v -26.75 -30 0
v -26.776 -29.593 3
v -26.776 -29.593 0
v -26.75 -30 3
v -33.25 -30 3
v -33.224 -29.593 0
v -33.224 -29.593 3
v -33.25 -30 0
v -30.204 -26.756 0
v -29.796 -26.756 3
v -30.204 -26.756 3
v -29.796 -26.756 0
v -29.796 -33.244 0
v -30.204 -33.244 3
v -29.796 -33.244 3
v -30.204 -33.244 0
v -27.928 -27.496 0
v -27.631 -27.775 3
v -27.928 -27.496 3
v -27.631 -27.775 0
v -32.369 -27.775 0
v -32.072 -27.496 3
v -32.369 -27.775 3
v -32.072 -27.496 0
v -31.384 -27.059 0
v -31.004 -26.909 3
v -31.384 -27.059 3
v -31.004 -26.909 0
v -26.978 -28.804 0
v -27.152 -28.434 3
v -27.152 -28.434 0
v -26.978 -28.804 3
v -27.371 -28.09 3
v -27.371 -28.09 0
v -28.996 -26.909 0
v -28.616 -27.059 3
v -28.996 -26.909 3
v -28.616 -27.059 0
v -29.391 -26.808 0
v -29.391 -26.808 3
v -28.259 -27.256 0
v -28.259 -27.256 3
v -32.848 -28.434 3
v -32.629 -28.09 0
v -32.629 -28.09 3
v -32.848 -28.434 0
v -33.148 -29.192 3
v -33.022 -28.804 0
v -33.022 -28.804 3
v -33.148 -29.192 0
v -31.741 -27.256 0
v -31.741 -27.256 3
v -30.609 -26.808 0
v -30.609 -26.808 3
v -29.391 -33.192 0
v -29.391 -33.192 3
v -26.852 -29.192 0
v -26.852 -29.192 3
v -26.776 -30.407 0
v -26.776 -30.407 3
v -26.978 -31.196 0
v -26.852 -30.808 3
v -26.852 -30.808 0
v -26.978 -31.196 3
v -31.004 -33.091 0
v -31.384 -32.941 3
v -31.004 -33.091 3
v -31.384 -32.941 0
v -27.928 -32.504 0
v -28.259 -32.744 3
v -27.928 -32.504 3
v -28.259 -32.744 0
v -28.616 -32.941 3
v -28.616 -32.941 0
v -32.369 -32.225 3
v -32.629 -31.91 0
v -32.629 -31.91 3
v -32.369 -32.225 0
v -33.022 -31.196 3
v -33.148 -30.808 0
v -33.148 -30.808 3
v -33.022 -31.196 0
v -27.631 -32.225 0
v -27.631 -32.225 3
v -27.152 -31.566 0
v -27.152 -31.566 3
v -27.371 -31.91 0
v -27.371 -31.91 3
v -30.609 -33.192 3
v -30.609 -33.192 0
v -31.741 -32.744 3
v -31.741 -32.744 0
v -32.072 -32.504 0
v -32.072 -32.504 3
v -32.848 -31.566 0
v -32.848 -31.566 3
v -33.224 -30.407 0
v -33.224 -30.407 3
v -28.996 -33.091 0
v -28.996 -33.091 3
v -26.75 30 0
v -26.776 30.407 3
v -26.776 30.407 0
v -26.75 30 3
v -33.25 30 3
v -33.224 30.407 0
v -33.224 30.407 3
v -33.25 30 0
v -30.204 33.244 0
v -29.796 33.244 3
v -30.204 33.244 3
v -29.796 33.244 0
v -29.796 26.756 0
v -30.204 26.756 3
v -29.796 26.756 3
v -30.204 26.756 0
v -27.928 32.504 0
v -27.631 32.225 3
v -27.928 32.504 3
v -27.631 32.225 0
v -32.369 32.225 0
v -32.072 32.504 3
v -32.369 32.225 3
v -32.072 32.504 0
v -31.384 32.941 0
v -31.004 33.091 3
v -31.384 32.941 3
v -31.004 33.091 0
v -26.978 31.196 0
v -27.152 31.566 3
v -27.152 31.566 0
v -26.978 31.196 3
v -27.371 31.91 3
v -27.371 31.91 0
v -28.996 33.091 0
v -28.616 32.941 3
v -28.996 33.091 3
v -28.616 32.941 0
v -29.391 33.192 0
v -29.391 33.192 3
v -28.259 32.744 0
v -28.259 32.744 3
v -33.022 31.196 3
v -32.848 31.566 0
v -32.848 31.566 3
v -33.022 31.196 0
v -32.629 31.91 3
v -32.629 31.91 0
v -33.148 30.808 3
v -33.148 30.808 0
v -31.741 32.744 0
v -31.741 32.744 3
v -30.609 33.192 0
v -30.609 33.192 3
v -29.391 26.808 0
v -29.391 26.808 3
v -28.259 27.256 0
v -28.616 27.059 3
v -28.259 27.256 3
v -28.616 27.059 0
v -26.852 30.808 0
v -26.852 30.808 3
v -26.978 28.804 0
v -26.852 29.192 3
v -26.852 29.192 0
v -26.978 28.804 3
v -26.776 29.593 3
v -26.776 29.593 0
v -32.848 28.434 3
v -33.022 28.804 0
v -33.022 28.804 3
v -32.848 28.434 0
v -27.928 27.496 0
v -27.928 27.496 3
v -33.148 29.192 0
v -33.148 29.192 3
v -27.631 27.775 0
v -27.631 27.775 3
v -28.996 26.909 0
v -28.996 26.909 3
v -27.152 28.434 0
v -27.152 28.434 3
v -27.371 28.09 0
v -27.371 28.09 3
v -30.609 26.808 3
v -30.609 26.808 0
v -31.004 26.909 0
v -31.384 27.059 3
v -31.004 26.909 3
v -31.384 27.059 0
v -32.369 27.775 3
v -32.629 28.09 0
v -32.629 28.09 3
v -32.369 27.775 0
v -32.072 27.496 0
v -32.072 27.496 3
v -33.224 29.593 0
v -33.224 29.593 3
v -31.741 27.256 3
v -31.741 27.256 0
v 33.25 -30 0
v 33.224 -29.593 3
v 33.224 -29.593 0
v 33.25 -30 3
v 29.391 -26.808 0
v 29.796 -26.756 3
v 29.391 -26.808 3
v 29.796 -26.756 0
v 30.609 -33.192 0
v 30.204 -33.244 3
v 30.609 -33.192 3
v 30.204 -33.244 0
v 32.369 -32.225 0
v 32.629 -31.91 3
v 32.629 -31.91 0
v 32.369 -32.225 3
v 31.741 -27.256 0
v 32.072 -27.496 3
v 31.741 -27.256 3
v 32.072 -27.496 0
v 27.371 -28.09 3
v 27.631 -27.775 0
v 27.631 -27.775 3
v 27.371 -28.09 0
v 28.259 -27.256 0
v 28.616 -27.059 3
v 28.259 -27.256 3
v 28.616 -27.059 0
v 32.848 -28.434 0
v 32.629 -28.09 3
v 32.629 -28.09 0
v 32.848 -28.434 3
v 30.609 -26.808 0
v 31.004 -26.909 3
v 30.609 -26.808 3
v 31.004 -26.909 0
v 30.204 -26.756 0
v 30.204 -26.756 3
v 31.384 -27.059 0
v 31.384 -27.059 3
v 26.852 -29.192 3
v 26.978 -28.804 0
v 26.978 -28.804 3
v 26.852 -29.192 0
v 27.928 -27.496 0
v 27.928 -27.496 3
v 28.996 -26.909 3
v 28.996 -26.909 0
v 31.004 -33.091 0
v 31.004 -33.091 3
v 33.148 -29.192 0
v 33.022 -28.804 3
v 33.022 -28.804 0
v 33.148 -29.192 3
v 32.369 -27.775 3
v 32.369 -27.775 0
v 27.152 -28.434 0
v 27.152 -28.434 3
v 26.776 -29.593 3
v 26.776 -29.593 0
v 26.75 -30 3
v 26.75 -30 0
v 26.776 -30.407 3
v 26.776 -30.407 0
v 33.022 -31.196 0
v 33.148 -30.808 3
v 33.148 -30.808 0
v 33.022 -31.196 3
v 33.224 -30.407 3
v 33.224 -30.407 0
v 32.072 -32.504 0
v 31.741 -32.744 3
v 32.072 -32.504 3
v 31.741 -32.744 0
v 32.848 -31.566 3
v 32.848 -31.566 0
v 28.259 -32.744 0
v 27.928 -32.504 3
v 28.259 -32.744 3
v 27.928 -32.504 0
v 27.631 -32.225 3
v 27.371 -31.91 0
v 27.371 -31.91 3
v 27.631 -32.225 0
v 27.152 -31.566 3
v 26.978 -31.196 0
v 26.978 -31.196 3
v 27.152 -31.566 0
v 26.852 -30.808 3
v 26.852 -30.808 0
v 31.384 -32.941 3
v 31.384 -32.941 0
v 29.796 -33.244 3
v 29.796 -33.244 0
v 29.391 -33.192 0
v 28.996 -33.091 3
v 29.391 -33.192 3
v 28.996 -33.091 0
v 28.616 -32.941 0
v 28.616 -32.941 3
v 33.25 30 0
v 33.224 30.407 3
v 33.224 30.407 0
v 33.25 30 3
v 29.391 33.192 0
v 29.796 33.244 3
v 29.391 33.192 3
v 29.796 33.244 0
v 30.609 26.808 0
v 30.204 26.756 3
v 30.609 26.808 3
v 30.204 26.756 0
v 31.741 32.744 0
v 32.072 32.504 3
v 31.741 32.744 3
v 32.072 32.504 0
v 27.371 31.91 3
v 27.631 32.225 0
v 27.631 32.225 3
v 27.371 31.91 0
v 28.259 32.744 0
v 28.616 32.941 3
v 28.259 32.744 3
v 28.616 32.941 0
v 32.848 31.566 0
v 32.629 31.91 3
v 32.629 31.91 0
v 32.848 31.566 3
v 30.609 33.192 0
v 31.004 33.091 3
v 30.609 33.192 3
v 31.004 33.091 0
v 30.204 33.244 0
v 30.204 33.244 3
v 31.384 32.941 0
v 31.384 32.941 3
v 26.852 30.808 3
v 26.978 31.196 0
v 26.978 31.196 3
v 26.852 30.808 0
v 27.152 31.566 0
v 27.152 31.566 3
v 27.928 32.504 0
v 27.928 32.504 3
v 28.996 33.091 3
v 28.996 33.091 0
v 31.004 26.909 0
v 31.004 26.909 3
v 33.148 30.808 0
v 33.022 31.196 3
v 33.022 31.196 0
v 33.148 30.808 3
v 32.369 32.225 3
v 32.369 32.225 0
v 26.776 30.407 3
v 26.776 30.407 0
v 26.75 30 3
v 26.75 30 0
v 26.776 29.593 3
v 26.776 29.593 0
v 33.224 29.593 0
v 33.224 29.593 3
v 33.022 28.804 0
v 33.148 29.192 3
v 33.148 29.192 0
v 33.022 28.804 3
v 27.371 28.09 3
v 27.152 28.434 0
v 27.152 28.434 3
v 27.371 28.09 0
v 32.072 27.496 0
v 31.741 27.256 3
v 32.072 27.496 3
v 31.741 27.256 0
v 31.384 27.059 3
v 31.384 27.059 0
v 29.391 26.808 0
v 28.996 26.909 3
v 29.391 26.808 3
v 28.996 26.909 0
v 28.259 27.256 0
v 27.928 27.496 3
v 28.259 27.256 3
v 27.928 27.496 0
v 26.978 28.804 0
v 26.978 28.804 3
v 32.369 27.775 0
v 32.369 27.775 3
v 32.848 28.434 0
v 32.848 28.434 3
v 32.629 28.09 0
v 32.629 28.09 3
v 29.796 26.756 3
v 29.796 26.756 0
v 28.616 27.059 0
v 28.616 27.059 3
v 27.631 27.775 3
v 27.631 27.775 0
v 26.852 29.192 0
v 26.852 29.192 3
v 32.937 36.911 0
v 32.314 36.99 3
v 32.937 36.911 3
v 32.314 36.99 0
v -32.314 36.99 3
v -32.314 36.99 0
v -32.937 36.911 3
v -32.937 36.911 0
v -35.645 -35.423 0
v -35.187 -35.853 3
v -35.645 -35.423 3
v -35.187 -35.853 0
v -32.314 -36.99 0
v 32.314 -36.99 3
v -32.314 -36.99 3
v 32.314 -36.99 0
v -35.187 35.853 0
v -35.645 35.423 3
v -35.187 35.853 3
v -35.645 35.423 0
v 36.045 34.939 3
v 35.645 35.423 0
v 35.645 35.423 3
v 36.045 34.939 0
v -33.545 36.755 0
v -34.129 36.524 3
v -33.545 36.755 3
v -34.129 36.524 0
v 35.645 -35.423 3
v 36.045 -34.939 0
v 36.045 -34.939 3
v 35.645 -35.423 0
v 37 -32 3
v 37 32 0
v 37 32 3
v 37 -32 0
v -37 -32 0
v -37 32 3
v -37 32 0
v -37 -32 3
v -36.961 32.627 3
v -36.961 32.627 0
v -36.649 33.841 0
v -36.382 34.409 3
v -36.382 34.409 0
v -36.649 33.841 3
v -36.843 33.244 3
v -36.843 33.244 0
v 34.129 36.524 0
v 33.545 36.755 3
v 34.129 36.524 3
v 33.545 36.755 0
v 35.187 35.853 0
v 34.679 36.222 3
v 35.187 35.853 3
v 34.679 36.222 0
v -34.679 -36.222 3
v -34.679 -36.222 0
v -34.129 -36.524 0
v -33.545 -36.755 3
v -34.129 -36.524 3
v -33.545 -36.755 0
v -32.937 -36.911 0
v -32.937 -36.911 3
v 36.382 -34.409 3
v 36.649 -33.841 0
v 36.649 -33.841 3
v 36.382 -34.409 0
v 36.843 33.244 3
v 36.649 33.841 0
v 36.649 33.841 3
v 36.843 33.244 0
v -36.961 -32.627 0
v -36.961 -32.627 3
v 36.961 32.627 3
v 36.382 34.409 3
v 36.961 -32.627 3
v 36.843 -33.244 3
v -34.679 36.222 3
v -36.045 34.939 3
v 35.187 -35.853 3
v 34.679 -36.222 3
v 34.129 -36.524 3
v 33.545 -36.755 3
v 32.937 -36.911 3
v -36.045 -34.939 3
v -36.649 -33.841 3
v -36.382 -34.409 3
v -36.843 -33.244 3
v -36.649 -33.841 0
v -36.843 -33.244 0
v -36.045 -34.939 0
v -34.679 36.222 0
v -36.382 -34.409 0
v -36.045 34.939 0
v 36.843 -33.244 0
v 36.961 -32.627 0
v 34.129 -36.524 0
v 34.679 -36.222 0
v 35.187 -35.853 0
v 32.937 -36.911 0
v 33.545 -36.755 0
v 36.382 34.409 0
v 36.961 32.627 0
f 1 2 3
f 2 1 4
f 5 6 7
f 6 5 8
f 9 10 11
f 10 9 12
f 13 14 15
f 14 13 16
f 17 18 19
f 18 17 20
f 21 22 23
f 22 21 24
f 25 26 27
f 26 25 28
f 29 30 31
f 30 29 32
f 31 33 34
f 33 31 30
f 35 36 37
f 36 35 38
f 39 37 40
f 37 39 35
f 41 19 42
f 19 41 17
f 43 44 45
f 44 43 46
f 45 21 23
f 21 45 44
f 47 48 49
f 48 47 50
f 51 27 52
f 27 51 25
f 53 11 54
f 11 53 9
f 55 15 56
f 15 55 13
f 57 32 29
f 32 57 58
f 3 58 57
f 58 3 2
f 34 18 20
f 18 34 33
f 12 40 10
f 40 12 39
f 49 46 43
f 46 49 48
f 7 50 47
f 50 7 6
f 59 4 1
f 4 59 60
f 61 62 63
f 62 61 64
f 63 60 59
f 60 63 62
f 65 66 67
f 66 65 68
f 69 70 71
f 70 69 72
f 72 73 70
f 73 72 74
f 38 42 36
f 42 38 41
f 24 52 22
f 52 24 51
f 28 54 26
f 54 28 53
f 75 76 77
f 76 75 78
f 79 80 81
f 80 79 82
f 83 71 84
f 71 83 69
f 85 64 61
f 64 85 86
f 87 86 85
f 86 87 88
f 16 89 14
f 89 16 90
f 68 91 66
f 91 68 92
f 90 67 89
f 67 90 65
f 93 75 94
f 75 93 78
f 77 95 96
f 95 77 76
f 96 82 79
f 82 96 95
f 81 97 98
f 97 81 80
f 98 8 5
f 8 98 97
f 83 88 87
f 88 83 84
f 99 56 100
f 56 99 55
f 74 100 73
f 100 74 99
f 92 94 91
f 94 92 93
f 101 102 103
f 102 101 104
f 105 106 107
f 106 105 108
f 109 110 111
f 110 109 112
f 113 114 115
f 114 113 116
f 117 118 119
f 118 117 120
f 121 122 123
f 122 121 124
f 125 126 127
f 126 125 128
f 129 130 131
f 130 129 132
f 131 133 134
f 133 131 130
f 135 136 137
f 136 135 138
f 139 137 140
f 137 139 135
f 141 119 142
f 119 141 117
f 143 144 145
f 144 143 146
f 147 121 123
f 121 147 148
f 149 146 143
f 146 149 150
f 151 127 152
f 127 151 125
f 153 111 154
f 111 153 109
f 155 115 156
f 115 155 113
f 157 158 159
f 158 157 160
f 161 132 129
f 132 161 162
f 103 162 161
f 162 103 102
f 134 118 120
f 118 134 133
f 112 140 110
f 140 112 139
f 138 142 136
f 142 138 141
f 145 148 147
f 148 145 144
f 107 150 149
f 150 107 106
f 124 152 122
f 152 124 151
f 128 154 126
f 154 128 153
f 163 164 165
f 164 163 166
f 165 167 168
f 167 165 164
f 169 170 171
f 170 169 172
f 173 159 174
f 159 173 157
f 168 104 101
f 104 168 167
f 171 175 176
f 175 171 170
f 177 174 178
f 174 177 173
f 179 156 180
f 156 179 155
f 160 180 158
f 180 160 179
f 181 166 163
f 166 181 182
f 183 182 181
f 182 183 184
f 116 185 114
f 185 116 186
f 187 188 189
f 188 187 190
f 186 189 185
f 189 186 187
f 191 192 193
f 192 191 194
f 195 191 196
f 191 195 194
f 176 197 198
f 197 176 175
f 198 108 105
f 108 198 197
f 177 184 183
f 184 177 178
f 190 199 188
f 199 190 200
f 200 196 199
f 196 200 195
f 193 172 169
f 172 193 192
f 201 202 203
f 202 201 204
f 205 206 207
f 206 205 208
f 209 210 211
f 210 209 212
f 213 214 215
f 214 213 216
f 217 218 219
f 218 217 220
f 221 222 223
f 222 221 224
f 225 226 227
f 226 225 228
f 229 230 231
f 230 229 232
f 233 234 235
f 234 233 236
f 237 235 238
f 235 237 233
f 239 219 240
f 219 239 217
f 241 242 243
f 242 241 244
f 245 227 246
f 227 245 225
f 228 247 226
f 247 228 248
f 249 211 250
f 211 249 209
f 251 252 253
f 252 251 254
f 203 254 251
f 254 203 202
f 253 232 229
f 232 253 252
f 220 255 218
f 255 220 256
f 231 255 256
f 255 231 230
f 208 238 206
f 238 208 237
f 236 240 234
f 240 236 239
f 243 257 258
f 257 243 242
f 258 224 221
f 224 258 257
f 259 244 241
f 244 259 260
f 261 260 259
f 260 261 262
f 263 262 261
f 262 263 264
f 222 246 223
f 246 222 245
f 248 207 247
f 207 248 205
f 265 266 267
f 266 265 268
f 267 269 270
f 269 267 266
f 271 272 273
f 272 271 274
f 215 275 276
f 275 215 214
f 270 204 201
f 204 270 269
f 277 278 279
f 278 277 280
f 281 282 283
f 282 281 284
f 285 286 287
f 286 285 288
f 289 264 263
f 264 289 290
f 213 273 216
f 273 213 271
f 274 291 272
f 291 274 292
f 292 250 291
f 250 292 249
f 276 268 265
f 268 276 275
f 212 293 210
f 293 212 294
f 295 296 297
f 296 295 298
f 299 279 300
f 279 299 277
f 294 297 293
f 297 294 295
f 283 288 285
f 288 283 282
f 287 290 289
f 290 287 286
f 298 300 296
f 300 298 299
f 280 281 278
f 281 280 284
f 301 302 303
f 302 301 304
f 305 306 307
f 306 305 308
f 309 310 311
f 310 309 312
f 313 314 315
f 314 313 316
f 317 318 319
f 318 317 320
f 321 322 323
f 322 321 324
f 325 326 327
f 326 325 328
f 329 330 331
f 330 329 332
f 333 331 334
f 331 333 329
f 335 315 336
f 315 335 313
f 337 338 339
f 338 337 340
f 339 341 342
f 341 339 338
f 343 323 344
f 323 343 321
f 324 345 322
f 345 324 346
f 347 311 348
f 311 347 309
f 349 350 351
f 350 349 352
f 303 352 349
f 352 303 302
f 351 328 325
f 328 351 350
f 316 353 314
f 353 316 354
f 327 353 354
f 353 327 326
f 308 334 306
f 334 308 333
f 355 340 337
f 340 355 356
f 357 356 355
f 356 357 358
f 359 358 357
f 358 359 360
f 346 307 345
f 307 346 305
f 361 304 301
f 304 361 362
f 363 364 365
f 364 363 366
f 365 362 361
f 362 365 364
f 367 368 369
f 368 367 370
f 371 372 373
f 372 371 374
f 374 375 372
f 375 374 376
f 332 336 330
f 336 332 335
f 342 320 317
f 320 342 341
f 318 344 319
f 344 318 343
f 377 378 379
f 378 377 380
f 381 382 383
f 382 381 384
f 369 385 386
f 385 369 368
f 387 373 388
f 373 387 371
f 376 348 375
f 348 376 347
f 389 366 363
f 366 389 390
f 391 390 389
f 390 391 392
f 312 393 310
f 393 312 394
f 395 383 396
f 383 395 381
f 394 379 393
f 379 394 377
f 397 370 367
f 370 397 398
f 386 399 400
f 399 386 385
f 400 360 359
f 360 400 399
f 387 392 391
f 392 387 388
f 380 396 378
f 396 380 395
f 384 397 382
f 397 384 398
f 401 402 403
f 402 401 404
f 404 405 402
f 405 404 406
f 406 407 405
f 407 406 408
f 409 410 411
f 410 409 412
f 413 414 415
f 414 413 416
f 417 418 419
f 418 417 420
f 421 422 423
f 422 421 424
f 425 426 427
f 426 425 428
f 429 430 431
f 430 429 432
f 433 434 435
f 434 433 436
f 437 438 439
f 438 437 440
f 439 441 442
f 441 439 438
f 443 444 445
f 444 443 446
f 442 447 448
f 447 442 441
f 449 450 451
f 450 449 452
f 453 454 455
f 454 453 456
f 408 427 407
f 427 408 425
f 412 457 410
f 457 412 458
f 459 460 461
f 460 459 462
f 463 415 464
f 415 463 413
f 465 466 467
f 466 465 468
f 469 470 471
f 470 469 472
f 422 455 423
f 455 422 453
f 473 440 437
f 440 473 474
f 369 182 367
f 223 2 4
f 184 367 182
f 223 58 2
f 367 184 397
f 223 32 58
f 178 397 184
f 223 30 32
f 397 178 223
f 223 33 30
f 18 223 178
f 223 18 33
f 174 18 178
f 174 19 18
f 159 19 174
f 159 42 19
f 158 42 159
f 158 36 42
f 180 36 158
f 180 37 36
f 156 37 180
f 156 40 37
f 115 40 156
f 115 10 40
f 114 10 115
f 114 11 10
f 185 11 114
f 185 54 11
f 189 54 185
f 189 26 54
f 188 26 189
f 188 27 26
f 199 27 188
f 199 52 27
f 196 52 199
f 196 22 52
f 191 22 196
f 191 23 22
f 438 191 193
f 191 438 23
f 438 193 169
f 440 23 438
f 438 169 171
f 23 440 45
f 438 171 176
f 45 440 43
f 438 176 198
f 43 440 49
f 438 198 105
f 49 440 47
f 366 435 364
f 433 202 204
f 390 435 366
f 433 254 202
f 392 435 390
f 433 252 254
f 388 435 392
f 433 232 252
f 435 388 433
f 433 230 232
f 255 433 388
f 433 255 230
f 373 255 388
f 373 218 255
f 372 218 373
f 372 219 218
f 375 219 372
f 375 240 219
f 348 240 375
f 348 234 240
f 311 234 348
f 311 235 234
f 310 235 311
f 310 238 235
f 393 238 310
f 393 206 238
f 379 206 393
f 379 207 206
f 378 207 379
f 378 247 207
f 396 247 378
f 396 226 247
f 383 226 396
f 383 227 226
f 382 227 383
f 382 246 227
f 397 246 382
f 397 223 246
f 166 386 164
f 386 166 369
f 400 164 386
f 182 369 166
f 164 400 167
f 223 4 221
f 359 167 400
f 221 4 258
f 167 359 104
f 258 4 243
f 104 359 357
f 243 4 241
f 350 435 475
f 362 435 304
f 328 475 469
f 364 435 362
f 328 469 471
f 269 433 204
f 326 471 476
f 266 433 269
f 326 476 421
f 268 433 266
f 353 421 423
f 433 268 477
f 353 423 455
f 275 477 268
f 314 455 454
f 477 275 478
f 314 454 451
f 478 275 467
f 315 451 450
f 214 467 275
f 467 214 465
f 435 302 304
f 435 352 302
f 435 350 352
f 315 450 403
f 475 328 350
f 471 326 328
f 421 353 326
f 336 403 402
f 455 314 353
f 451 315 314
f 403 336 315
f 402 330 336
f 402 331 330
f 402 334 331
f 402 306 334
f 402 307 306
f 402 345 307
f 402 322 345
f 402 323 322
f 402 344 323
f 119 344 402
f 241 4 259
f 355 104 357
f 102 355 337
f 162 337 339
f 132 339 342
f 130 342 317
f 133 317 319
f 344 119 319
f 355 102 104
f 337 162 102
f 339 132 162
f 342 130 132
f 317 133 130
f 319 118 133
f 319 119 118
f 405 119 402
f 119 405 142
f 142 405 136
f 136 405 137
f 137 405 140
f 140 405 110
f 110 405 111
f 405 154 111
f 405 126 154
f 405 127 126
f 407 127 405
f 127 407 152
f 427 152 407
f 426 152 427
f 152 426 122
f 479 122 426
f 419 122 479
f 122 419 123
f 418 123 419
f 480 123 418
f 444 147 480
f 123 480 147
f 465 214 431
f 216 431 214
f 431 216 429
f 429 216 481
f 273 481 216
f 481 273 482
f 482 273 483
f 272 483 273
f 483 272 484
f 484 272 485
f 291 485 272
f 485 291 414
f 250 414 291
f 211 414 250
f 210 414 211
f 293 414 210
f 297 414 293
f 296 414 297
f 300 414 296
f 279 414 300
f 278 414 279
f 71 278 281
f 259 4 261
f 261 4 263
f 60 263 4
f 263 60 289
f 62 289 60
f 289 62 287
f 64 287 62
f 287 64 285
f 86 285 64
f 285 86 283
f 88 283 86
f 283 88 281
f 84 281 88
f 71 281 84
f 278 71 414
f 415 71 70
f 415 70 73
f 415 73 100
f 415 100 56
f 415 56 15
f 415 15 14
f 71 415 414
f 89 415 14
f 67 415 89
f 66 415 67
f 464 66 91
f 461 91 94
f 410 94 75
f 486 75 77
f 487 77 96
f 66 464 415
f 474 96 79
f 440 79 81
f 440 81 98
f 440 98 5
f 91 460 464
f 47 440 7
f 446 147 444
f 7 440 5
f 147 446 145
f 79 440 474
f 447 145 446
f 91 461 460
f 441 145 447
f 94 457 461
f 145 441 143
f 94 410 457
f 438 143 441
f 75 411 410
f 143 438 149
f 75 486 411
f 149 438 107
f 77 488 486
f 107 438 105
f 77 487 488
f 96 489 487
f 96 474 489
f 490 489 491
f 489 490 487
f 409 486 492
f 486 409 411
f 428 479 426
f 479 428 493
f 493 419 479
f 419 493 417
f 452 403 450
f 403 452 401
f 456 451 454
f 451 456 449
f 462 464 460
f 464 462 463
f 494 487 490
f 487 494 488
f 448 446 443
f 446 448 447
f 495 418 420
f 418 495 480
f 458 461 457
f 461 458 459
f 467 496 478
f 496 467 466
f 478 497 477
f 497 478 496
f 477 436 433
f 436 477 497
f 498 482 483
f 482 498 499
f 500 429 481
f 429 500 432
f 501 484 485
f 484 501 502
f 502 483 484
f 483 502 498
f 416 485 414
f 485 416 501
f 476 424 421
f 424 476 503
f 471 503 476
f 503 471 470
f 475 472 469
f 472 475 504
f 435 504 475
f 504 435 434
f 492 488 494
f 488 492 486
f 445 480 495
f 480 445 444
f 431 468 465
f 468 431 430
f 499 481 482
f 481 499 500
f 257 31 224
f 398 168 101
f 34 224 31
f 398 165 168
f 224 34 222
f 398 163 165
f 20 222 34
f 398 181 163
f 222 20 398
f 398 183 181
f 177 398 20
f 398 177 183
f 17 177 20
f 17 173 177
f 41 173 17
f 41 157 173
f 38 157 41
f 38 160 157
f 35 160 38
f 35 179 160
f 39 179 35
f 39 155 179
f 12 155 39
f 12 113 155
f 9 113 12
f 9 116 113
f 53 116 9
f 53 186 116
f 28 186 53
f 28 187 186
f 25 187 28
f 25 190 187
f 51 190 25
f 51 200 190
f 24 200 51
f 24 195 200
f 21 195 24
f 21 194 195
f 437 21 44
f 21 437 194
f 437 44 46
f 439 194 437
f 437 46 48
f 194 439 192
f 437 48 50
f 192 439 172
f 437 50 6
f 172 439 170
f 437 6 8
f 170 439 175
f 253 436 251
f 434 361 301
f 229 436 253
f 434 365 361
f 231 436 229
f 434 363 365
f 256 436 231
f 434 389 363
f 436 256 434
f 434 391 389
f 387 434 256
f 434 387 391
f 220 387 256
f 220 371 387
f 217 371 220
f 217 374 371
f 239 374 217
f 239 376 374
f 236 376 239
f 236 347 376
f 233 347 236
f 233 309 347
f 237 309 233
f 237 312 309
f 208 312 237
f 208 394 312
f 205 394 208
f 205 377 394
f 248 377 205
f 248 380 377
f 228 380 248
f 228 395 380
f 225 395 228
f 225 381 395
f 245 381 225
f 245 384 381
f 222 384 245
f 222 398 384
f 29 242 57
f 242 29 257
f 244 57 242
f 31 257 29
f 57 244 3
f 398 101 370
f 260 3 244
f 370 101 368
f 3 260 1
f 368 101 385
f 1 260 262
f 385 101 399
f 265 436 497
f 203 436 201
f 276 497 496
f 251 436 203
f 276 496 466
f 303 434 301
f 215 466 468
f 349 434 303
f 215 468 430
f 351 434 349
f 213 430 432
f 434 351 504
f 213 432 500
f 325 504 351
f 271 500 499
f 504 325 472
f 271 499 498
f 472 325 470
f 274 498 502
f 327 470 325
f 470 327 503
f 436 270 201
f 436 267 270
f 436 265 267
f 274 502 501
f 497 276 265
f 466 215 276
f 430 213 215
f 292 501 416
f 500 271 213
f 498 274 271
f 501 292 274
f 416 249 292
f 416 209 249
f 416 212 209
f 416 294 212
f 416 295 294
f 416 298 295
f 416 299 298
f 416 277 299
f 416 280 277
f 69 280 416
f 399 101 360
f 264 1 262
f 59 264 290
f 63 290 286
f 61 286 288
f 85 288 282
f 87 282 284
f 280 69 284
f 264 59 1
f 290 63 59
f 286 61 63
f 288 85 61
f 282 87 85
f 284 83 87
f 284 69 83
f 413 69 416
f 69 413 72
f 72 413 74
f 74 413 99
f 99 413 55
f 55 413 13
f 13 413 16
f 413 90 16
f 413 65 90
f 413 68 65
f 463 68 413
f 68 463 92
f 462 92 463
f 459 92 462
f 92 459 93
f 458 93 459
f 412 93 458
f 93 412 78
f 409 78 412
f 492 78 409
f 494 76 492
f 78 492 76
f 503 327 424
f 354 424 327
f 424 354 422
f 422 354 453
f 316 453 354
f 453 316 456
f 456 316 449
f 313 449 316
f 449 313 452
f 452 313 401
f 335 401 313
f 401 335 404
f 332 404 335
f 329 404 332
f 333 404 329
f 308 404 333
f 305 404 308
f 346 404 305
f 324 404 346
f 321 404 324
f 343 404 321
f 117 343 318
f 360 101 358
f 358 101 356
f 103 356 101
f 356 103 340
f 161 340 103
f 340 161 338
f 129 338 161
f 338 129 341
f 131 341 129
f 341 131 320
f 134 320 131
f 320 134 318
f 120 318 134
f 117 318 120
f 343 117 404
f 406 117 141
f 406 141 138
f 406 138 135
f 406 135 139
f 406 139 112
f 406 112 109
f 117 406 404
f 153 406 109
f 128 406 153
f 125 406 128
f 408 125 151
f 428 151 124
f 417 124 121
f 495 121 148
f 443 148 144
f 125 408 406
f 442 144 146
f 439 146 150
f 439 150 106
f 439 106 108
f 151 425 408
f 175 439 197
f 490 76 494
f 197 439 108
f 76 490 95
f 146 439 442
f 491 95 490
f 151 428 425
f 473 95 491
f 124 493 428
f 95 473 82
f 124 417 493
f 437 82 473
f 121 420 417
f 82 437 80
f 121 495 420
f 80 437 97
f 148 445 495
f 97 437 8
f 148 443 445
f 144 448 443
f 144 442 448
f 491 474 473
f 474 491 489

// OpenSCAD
$fn = 50;


difference() {
	union() {
		hull() {
			translate(v = [-32.0000000000, 32.0000000000, 0]) {
				cylinder(h = 3, r = 5);
			}
			translate(v = [32.0000000000, 32.0000000000, 0]) {
				cylinder(h = 3, r = 5);
			}
			translate(v = [-32.0000000000, -32.0000000000, 0]) {
				cylinder(h = 3, r = 5);
			}
			translate(v = [32.0000000000, -32.0000000000, 0]) {
				cylinder(h = 3, r = 5);
			}
		}
	}
	union() {
		translate(v = [-30.0000000000, -30.0000000000, -100.0000000000]) {
			cylinder(h = 200, r = 3.2500000000);
		}
		translate(v = [-30.0000000000, 30.0000000000, -100.0000000000]) {
			cylinder(h = 200, r = 3.2500000000);
		}
		translate(v = [30.0000000000, -30.0000000000, -100.0000000000]) {
			cylinder(h = 200, r = 3.2500000000);
		}
		translate(v = [30.0000000000, 30.0000000000, -100.0000000000]) {
			cylinder(h = 200, r = 3.2500000000);
		}
	}
}
